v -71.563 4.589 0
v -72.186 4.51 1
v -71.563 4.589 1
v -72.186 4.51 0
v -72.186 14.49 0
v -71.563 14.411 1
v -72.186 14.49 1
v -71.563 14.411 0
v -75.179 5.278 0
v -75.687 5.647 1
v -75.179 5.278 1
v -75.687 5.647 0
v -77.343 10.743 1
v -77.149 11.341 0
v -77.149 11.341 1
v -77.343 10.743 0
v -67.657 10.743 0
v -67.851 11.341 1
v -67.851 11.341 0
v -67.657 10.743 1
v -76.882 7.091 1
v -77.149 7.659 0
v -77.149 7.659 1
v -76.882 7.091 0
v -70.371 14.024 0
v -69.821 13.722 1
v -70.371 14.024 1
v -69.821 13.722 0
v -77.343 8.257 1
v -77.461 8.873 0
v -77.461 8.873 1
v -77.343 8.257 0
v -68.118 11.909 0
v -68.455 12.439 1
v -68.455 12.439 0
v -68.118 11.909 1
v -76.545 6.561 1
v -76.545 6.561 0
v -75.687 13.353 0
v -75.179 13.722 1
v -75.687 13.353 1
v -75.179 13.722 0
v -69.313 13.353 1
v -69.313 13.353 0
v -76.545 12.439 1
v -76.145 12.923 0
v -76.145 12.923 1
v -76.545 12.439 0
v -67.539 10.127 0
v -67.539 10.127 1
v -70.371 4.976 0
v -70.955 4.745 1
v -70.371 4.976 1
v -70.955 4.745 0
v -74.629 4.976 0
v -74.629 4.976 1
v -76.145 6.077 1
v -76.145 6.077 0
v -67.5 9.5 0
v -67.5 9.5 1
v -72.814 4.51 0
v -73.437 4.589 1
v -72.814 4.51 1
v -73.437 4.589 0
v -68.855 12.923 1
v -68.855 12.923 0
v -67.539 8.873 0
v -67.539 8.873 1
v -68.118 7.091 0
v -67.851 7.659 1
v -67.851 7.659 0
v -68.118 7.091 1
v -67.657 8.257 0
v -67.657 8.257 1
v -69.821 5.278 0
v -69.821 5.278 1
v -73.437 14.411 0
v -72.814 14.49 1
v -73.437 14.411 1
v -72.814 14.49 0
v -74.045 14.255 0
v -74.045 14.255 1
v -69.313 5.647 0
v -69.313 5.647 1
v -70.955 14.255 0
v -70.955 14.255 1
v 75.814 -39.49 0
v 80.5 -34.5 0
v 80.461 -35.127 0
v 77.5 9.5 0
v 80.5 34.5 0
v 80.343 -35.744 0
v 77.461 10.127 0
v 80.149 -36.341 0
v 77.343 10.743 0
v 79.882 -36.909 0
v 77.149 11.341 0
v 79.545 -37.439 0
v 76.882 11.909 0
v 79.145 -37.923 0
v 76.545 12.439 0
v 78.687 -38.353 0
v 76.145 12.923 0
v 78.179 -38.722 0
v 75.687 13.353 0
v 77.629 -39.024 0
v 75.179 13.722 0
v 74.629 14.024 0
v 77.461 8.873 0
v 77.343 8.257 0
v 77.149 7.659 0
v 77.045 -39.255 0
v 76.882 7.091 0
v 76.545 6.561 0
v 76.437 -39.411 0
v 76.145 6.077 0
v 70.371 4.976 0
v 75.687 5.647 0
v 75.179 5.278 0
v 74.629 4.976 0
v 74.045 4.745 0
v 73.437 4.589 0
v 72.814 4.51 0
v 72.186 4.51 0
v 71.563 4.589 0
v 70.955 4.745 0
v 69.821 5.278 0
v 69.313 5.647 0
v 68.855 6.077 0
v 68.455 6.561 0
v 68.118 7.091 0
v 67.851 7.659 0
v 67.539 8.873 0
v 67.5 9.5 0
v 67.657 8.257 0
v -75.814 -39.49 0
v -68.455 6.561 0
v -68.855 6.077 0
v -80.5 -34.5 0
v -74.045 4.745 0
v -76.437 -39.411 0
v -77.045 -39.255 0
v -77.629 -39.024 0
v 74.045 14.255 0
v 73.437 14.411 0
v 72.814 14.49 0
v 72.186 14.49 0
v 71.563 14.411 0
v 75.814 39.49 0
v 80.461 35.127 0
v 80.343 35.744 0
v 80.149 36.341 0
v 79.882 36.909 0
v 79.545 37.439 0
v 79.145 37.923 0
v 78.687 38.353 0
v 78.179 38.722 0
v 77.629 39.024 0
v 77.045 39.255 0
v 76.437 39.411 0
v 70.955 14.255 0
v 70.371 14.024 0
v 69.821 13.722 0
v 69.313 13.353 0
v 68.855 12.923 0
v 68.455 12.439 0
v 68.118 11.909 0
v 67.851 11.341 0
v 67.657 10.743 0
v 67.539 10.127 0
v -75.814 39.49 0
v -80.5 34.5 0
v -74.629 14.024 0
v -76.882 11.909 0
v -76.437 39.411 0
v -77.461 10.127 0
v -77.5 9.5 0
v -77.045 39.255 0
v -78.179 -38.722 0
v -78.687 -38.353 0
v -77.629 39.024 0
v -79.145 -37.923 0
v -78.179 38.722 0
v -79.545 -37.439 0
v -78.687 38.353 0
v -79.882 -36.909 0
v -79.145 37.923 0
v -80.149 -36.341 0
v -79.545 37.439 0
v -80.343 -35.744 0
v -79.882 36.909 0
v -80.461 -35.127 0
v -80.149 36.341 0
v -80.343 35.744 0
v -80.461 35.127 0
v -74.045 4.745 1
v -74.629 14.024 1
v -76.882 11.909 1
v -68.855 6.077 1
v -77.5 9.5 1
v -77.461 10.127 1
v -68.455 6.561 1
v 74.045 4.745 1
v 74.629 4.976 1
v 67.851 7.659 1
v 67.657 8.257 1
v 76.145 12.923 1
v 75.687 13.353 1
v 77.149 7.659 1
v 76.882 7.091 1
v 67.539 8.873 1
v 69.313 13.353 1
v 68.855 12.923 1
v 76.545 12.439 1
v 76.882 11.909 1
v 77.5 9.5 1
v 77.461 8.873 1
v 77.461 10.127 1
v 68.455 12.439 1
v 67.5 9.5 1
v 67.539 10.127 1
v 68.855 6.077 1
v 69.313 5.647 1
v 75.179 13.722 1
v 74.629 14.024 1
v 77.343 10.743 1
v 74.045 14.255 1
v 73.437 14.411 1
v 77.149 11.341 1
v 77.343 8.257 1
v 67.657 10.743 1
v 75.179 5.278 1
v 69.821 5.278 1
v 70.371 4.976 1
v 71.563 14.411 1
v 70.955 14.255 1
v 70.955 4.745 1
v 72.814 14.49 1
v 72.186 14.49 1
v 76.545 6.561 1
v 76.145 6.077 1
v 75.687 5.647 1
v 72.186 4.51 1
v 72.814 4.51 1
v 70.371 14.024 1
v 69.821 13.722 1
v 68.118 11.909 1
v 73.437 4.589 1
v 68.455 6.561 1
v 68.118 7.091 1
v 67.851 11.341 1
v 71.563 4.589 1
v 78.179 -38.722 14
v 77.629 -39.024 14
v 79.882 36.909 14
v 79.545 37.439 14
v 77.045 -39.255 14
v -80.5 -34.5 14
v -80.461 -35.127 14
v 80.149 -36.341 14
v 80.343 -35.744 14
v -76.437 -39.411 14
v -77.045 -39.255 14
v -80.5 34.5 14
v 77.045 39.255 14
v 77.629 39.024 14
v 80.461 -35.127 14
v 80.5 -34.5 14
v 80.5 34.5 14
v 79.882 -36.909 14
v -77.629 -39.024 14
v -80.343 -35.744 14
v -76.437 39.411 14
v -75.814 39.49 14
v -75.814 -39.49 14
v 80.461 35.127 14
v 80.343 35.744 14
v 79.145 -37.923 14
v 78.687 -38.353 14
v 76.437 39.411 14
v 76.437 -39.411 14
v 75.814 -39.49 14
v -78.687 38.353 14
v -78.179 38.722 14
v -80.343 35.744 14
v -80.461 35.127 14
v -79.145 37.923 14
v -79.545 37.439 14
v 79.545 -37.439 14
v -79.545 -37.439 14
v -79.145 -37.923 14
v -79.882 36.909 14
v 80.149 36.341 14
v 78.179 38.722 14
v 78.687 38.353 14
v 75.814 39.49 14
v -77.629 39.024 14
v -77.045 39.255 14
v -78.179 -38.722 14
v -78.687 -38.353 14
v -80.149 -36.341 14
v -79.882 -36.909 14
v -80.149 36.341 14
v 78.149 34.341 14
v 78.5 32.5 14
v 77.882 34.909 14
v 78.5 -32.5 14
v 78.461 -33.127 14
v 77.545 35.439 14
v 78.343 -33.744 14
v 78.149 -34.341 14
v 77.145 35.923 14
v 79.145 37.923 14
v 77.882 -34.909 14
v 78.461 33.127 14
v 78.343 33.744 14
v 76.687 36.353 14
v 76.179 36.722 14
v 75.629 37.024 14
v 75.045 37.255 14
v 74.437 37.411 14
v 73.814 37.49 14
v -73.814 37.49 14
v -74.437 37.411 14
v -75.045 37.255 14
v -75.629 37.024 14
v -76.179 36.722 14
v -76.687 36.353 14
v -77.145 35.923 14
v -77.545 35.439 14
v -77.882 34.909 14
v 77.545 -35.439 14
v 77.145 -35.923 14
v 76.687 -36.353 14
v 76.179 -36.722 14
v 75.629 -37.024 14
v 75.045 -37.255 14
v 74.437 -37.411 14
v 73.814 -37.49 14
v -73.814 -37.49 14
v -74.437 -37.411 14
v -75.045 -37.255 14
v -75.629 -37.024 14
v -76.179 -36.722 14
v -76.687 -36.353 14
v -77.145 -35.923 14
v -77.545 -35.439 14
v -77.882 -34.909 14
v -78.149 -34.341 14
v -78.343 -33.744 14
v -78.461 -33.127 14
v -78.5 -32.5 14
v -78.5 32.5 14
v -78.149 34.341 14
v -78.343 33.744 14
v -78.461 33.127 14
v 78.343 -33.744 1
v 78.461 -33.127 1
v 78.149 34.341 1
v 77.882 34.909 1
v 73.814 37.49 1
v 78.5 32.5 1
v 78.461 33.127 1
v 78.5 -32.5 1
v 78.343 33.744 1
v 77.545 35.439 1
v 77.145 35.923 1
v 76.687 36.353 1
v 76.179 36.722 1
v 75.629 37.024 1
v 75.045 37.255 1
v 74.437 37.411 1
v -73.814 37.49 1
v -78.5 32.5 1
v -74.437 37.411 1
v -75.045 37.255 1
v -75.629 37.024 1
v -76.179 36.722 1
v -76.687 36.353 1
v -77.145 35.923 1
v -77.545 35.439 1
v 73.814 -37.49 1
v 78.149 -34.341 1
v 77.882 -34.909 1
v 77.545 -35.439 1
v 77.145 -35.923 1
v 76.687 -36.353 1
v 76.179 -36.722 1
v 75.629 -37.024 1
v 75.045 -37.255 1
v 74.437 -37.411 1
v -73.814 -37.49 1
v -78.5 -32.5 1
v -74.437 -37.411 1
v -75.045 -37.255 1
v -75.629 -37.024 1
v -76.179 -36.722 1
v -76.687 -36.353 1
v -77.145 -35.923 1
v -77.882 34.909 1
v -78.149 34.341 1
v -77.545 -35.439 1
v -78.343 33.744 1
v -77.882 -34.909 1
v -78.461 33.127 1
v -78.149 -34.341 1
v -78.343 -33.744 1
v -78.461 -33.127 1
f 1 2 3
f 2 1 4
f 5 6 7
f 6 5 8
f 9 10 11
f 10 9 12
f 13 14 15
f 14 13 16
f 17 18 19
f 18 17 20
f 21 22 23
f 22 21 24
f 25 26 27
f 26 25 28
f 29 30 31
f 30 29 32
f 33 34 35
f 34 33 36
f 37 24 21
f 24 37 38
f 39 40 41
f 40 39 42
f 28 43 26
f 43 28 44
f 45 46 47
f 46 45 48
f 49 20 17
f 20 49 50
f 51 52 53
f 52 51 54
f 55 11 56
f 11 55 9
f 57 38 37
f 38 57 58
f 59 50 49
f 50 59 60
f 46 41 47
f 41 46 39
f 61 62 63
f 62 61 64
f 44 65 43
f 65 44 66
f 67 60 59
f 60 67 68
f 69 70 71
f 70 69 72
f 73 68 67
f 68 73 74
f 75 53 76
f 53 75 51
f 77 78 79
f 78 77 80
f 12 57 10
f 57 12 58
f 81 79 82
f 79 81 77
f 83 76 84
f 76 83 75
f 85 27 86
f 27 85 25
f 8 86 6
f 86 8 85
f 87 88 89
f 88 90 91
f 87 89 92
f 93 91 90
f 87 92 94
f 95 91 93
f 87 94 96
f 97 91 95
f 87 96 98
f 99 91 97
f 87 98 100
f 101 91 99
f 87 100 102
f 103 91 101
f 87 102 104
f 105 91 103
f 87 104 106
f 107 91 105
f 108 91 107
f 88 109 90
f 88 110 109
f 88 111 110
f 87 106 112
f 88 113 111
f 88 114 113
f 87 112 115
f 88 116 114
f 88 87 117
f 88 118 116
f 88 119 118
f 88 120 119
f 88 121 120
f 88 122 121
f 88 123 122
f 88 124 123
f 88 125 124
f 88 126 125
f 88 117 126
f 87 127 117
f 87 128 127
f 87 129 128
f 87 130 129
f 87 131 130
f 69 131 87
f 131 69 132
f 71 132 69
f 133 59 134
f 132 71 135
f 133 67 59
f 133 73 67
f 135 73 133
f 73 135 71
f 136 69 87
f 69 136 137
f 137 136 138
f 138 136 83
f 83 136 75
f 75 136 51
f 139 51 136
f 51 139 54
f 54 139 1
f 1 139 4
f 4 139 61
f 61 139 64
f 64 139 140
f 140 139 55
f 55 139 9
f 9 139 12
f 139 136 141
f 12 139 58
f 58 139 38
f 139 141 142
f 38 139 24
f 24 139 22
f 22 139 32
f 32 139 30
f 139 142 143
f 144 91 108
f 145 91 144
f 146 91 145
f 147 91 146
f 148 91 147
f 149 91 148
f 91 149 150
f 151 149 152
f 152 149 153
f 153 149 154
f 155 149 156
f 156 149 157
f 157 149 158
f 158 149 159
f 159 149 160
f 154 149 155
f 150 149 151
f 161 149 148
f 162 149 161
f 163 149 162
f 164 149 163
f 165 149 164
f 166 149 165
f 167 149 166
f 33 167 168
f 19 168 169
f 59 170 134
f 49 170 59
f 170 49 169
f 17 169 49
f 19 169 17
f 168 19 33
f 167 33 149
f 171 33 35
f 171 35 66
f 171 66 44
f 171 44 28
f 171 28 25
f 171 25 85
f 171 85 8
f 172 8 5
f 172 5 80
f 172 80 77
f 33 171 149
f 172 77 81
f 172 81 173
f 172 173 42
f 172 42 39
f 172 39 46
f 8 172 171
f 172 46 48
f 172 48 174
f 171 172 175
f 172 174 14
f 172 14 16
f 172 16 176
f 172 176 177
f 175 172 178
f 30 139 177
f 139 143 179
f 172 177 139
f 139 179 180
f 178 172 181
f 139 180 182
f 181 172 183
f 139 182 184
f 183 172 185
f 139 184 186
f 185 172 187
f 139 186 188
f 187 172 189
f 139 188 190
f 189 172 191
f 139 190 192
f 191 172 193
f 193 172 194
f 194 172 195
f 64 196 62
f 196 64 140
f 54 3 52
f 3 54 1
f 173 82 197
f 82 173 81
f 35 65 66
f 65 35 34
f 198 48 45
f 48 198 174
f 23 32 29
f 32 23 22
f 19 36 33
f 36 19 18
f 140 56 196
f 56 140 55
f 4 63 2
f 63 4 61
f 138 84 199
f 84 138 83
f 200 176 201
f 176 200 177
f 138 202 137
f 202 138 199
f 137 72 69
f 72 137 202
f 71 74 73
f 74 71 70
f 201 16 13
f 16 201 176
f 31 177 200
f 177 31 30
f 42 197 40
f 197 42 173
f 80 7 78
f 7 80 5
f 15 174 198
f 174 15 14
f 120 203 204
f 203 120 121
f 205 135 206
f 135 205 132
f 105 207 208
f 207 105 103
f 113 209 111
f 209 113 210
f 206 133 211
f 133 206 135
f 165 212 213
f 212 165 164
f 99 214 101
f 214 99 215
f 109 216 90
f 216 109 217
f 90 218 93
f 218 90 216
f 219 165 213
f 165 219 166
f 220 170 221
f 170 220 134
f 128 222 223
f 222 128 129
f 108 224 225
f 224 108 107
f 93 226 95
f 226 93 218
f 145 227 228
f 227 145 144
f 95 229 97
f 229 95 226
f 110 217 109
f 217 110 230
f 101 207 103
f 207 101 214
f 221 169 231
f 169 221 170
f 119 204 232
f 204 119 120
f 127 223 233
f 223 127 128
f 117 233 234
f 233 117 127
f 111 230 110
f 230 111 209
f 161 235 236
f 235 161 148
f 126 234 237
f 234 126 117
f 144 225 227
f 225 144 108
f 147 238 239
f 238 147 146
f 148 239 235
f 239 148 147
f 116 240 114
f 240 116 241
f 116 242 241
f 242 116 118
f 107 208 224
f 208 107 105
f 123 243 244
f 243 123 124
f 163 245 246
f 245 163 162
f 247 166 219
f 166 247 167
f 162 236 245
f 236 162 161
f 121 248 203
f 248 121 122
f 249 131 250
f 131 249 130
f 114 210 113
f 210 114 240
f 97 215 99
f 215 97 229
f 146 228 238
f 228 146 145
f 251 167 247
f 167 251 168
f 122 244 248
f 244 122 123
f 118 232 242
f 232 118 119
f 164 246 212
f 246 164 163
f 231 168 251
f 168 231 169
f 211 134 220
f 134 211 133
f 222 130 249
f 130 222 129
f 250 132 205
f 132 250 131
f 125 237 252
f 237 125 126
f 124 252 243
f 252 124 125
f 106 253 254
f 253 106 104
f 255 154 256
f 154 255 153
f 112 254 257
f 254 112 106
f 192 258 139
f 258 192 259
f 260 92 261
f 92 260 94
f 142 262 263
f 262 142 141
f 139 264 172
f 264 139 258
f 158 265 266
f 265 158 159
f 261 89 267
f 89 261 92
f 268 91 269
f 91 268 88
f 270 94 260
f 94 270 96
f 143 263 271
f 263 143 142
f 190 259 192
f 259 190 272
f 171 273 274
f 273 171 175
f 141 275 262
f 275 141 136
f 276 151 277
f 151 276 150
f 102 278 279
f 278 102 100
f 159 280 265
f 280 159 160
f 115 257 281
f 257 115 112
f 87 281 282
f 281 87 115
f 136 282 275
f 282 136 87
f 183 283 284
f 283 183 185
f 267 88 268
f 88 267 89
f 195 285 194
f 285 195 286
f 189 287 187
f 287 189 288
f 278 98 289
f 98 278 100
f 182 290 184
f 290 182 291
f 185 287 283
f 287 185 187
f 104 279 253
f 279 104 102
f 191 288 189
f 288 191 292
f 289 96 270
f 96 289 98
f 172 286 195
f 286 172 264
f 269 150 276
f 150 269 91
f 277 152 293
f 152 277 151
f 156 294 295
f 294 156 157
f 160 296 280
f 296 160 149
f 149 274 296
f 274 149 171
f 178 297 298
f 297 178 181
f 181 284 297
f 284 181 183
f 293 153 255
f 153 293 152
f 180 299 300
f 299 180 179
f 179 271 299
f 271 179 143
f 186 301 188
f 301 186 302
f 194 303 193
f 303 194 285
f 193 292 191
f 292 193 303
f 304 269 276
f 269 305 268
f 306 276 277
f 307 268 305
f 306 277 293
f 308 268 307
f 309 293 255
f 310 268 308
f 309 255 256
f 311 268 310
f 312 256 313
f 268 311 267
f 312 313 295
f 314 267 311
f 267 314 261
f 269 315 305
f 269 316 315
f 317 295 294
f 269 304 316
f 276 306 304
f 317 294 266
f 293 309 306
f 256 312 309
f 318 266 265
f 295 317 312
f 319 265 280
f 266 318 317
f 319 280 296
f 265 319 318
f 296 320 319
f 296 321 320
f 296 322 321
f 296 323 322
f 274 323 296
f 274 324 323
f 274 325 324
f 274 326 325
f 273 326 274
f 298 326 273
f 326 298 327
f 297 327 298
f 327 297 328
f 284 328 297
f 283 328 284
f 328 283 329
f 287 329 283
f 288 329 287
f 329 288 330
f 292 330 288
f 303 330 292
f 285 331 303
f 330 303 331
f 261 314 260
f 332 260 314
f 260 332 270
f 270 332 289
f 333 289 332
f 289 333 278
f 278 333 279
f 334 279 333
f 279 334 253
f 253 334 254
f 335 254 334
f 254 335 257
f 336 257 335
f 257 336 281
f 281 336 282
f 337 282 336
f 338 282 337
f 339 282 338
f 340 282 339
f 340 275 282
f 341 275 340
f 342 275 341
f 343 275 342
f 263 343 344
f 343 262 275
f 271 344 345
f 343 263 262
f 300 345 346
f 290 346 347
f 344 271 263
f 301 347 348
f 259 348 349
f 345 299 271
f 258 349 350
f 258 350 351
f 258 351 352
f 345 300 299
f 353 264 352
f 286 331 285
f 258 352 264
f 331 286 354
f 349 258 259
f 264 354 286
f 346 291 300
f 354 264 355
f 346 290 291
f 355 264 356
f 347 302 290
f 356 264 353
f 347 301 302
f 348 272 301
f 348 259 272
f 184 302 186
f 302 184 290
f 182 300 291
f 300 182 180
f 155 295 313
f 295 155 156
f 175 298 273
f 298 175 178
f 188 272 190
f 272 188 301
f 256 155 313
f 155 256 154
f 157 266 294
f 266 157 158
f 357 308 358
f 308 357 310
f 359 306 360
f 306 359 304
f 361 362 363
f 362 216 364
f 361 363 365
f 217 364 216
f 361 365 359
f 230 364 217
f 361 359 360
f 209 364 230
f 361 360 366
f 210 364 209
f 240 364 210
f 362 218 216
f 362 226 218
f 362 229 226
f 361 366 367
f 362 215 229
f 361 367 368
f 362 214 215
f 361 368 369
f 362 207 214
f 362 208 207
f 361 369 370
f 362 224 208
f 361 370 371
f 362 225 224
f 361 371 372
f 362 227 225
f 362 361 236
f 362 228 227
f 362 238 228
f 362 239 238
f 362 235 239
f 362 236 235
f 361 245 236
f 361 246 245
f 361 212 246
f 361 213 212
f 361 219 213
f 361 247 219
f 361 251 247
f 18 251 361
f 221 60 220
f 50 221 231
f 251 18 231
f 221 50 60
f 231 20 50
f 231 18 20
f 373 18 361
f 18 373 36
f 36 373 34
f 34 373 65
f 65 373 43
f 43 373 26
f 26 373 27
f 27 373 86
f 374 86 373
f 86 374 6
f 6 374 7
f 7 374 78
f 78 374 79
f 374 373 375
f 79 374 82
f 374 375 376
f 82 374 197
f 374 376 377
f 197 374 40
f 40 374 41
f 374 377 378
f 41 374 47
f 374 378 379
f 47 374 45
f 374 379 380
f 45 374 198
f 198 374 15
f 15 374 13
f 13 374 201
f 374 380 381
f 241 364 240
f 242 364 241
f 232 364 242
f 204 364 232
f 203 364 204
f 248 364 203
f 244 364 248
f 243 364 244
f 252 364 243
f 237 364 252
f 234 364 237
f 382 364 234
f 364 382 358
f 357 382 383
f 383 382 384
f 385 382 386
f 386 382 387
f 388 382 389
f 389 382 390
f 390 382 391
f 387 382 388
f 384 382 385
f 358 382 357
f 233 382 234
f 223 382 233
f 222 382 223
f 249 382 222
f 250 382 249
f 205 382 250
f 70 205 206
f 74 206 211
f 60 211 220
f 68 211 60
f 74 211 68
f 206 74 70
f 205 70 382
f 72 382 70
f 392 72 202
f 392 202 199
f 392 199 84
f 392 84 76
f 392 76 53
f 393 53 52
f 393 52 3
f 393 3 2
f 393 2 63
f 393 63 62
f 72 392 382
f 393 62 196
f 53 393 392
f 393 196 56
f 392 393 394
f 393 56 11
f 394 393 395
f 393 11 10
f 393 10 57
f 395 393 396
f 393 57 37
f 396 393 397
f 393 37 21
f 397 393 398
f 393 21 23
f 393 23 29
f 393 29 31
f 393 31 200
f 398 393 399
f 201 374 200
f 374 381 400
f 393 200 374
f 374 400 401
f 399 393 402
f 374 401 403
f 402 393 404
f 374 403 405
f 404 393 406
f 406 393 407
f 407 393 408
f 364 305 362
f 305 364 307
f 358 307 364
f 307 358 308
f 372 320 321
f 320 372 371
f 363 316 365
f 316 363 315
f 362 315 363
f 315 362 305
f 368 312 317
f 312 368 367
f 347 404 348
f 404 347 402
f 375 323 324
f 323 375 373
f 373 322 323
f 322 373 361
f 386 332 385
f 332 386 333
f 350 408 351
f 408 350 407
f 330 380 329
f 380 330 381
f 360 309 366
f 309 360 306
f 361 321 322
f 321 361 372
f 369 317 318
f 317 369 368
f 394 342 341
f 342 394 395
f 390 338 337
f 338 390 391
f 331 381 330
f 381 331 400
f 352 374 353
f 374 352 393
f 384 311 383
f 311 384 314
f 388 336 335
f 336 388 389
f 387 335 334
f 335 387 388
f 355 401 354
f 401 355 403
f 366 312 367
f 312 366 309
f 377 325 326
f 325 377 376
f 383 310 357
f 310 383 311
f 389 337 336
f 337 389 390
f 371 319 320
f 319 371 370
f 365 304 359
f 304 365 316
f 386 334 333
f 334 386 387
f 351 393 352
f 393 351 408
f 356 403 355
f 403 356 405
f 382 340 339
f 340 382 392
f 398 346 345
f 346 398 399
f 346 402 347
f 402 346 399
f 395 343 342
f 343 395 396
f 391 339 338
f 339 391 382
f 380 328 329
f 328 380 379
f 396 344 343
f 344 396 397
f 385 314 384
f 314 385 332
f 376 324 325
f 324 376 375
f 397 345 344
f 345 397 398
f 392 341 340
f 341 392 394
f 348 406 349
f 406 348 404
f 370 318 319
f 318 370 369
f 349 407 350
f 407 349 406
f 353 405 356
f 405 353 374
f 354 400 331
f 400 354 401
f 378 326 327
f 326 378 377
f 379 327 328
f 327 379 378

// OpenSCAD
// glasses case
// interior dims
$fn=50;
xx=147;
yy=65;
zz=14;
ww=2;
ff=1;
dd=10;
hole=10;


module unit() {
  difference() {
    hull() {
      for (i = [-1,1], j = [-1,1]) {
        translate([(2*ww+xx)/2*i,(2*ww+yy)/2*j,0]) cylinder(zz,d=dd);
      }
    }
    hull() {
      for (i = [-1,1], j = [-1,1]) {
        echo(i,j);
        translate([xx/2*i,yy/2*j,ff]) cylinder(zz,d=dd);
      }
    }
    for (i = [-1,1]) {
      #translate([((xx-ww)/2*i),yy/2-46/2,0]) cylinder(zz,d=hole);
    }
    //#translate([xx-hole-2-ww,40,0]) cylinder(zz,d=hole);
  }
}


unit();
